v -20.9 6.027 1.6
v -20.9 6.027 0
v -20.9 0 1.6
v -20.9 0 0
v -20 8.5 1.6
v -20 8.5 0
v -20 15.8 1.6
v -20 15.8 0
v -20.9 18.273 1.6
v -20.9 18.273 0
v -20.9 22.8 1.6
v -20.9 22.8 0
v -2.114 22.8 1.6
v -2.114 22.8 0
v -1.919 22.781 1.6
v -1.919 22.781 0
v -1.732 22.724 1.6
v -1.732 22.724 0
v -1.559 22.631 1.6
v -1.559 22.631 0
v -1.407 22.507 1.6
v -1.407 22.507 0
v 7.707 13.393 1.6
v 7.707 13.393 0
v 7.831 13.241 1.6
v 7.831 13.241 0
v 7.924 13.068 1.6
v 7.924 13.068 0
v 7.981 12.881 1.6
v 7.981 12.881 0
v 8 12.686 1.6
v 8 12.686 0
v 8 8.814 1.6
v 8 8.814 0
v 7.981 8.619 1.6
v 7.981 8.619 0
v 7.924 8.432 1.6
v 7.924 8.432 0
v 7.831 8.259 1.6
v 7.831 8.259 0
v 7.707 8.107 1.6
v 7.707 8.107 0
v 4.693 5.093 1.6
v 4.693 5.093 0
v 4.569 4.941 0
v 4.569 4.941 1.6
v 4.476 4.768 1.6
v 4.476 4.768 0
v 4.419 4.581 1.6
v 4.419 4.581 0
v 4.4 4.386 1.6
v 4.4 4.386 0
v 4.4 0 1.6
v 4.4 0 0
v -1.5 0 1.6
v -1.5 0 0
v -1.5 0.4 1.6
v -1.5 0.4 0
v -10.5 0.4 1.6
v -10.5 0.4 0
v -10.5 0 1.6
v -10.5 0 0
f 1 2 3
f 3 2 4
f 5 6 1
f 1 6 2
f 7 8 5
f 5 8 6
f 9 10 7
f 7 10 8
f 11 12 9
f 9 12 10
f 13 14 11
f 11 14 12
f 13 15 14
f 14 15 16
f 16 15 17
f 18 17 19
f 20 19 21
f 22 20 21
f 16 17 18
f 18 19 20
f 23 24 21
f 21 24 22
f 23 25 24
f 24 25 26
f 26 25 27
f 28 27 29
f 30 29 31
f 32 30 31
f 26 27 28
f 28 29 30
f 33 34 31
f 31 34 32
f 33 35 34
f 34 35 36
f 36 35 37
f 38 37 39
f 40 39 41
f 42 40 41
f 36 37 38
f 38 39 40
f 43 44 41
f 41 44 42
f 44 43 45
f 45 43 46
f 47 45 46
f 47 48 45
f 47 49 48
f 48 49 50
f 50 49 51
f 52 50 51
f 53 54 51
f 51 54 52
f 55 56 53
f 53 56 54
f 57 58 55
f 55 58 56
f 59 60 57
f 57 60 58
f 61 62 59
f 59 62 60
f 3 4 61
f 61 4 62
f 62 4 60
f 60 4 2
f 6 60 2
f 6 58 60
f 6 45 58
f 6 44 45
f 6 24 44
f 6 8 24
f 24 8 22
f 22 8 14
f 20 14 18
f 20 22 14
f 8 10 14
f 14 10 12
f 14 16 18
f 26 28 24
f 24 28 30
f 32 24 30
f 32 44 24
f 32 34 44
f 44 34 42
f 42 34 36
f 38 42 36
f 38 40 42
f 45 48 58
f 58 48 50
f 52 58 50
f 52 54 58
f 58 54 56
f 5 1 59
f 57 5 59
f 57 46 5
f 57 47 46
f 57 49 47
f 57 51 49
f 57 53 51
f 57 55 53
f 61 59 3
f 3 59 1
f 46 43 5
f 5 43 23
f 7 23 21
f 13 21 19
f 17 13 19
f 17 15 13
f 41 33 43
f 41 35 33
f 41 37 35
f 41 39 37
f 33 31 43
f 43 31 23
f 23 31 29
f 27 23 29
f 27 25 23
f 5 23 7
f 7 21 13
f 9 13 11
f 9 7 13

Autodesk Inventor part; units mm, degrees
ref_plane "YZ Plane" through (0, 0, 0) normal (1, 0, 0) x (0, 1, 0)
ref_plane "XZ Plane" through (0, 0, 0) normal (0, 1, 0) x (-1, 0, 0)
ref_plane "XY Plane" through (0, 0, 0) normal (0, 0, 1) x (1, 0, 0)
sketch "Skizze_1" plane through (0, 0, 0) normal (0, 0, 1) x (1, 0, 0)
  line L0 (-20.9, 0) -> (-10.5, 0)
  line L1 (-10.5, 0) -> (-10.5, 0.4)
  line L2 (-10.5, 0.4) -> (-1.5, 0.4)
  line L3 (-1.5, 0.4) -> (-1.5, 0)
  line L4 (-1.5, 0) -> (4.4, 0)
  line L5 (4.4, 0) -> (4.4, 4.3858)
  arc A0 (4.6929, 5.0929) -> (4.4, 4.3858) centre (5.4, 4.3858) ccw
  line L6 (4.6929, 5.0929) -> (7.7071, 8.1071)
  arc A1 (7.7071, 8.1071) -> (8, 8.8142) centre (7, 8.8142) ccw
  line L7 (8, 8.8142) -> (8, 12.6858)
  arc A2 (8, 12.6858) -> (7.7071, 13.3929) centre (7, 12.6858) ccw
  line L8 (7.7071, 13.3929) -> (-1.4071, 22.5071)
  arc A3 (-1.4071, 22.5071) -> (-2.1142, 22.8) centre (-2.1142, 21.8) ccw
  line L9 (-2.1142, 22.8) -> (-20.9, 22.8)
  line L10 (-20.9, 22.8) -> (-20.9, 18.2727)
  line L11 (-20.9, 18.2727) -> (-20, 15.8)
  line L12 (-20, 15.8) -> (-20, 8.5)
  line L13 (-20, 8.5) -> (-20.9, 6.0273)
  line L14 (-20.9, 6.0273) -> (-20.9, 0)
extrude "Extrusion1" add sketch "Skizze_1" along normal blind 1.6
properties part number "745-300"
